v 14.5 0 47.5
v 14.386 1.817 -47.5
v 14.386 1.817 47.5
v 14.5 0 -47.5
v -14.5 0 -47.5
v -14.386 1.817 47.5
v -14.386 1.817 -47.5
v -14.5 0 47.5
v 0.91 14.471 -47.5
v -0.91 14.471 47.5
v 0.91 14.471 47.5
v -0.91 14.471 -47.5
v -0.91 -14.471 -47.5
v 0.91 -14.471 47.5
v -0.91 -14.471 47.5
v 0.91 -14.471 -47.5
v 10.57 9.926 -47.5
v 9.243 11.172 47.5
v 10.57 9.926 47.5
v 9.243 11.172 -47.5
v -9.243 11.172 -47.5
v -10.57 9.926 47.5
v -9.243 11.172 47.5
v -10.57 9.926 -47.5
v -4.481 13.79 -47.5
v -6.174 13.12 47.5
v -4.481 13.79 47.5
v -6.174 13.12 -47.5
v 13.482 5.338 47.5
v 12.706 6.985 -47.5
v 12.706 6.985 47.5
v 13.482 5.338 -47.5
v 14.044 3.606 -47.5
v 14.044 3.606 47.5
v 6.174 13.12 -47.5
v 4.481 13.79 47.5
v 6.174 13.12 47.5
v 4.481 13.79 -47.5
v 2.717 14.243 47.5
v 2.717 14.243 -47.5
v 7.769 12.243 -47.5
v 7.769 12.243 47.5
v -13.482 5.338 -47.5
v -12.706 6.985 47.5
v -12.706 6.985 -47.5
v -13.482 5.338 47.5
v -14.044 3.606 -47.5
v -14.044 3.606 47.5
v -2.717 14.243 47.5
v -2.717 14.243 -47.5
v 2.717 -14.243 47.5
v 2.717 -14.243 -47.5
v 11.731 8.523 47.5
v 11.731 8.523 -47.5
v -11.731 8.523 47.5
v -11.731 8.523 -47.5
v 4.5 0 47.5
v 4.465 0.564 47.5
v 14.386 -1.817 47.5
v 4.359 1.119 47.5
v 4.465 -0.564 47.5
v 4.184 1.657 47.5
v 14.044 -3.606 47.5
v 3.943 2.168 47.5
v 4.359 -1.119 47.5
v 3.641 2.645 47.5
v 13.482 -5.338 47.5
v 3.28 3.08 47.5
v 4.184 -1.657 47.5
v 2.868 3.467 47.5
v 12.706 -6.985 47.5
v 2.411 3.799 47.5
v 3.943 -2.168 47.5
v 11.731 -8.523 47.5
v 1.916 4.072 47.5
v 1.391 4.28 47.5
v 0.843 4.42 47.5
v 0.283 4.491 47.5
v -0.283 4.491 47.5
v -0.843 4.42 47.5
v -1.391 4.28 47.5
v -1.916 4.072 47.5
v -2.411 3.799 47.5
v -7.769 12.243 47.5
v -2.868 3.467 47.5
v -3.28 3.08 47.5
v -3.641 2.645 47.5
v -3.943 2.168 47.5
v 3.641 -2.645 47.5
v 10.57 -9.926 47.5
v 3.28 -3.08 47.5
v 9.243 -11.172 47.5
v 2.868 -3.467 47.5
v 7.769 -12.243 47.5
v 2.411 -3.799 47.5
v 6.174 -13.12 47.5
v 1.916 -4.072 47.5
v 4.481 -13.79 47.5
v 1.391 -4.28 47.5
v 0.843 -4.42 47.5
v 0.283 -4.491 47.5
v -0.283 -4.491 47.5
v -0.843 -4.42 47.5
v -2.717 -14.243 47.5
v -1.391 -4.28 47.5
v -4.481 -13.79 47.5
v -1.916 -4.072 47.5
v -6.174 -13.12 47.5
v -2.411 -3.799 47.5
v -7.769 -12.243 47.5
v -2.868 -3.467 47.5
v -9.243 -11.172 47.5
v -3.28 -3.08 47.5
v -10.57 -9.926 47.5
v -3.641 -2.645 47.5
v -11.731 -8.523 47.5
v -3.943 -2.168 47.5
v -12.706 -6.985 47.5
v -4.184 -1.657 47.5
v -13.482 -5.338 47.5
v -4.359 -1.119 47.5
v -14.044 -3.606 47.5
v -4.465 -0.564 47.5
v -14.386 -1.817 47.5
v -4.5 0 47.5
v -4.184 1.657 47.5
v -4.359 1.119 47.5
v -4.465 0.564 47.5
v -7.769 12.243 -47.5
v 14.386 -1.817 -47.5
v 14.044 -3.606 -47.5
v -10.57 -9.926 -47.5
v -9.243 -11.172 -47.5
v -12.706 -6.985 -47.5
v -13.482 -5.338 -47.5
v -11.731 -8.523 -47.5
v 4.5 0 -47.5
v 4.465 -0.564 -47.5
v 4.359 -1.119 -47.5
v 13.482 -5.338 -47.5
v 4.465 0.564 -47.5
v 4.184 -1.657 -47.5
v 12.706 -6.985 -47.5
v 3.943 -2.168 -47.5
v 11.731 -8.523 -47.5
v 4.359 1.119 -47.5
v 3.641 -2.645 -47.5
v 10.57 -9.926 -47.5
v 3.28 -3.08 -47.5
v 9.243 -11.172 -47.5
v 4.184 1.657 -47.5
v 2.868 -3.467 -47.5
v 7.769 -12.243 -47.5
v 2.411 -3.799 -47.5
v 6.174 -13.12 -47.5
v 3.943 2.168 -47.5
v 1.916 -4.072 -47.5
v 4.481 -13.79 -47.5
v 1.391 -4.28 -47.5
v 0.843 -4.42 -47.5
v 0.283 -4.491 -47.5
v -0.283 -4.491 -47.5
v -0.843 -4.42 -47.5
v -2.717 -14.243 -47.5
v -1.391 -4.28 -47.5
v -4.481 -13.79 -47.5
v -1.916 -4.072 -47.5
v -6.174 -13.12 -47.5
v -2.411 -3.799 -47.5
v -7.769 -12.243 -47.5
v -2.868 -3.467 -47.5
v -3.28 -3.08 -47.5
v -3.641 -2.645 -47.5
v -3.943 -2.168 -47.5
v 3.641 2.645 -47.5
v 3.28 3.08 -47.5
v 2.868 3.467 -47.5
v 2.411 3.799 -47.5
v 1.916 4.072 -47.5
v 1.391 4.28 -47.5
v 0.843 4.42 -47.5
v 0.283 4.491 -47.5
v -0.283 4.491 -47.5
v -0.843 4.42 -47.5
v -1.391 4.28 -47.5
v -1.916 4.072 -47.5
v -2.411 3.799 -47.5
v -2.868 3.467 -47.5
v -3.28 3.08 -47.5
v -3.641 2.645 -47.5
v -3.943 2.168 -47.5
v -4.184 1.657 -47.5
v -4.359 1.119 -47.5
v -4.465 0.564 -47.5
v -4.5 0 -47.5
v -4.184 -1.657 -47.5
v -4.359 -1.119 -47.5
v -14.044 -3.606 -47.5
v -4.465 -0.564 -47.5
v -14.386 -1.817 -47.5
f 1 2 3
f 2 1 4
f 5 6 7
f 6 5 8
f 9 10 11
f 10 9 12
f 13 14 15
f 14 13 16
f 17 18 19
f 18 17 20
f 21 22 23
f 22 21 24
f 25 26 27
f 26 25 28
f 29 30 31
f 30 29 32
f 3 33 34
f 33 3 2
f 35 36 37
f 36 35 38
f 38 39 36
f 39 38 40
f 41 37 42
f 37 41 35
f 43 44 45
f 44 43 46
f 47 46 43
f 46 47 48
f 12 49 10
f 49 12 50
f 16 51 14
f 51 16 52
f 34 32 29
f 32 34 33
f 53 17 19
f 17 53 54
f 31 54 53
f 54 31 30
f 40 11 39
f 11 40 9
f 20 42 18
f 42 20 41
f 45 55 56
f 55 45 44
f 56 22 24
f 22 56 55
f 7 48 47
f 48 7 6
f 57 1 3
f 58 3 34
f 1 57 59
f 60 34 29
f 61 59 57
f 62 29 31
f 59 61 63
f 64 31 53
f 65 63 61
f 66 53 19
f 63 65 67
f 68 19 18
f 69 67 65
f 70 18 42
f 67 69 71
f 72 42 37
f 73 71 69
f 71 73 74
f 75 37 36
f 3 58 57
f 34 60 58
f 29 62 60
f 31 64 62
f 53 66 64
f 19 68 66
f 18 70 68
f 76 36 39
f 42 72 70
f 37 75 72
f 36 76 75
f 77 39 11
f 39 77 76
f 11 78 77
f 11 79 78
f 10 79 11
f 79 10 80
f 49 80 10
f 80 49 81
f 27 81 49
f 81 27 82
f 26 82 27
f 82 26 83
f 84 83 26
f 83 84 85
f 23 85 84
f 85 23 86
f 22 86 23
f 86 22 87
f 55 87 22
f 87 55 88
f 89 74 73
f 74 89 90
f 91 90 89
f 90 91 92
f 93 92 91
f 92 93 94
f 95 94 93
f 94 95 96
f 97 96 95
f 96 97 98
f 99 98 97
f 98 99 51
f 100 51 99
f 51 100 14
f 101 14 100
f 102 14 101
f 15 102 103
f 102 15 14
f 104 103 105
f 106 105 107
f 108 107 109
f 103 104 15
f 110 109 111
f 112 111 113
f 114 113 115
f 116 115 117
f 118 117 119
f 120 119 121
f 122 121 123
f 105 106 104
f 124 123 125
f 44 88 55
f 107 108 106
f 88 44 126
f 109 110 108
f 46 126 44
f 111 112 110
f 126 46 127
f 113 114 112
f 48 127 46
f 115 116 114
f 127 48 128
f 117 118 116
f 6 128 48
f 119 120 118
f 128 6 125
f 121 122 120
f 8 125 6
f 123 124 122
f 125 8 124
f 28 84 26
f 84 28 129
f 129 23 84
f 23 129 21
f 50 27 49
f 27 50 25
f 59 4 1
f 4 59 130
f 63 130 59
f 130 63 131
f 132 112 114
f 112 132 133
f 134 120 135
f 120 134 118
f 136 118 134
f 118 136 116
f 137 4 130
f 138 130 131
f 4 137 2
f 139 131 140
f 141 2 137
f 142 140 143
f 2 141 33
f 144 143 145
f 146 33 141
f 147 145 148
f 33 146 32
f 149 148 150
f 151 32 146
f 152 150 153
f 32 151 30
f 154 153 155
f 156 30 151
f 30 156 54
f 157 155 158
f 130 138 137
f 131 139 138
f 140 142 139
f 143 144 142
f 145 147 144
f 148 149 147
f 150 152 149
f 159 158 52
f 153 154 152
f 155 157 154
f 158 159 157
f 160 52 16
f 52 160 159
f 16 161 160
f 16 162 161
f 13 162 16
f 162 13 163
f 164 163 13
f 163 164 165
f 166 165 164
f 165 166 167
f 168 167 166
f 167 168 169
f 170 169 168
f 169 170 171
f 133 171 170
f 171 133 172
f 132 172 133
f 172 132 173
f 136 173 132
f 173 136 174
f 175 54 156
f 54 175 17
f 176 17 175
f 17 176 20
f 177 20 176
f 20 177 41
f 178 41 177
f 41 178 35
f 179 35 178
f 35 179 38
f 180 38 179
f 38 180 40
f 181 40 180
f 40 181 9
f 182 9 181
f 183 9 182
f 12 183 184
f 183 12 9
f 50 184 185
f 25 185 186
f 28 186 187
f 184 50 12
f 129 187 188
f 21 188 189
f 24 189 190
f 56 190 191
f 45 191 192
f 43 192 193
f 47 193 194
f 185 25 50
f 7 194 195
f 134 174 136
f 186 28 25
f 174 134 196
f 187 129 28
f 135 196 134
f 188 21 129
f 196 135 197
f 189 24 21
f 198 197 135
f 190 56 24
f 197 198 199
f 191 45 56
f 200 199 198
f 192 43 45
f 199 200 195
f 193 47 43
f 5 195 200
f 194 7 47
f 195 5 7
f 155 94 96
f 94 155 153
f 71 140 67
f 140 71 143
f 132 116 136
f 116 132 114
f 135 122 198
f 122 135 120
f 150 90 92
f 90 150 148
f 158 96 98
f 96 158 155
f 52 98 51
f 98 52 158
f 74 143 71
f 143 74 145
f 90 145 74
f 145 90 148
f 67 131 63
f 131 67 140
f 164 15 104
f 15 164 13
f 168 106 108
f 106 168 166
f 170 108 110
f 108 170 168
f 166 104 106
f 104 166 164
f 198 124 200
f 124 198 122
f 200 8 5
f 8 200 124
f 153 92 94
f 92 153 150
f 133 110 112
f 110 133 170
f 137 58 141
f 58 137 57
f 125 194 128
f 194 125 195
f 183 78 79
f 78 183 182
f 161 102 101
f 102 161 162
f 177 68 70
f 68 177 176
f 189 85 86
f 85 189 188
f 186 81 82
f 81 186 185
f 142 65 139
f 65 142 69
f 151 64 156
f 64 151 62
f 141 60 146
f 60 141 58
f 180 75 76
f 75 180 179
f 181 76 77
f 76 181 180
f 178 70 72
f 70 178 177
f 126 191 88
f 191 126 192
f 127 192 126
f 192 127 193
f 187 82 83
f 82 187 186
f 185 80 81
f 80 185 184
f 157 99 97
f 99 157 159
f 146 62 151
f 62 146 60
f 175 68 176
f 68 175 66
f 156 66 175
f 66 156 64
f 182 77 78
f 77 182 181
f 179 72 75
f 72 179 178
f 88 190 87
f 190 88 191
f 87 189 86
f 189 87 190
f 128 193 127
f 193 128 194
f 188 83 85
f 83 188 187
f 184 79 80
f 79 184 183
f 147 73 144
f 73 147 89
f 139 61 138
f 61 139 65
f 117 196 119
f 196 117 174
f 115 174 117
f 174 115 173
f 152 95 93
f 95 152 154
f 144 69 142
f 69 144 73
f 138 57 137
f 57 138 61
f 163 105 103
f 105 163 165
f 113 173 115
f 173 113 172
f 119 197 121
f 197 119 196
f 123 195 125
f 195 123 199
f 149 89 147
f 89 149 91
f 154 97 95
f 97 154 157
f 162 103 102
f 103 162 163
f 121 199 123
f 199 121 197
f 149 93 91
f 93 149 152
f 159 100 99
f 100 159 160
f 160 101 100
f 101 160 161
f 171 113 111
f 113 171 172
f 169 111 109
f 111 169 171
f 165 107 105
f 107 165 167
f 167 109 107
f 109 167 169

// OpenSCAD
$fn = 50;


difference() {
	union() {
		translate(v = [0, 0, -47.5000000000]) {
			cylinder(h = 95, r = 14.5000000000);
		}
	}
	union() {
		translate(v = [0, 0, -100.0000000000]) {
			cylinder(h = 200, r = 4.5000000000);
		}
	}
}
